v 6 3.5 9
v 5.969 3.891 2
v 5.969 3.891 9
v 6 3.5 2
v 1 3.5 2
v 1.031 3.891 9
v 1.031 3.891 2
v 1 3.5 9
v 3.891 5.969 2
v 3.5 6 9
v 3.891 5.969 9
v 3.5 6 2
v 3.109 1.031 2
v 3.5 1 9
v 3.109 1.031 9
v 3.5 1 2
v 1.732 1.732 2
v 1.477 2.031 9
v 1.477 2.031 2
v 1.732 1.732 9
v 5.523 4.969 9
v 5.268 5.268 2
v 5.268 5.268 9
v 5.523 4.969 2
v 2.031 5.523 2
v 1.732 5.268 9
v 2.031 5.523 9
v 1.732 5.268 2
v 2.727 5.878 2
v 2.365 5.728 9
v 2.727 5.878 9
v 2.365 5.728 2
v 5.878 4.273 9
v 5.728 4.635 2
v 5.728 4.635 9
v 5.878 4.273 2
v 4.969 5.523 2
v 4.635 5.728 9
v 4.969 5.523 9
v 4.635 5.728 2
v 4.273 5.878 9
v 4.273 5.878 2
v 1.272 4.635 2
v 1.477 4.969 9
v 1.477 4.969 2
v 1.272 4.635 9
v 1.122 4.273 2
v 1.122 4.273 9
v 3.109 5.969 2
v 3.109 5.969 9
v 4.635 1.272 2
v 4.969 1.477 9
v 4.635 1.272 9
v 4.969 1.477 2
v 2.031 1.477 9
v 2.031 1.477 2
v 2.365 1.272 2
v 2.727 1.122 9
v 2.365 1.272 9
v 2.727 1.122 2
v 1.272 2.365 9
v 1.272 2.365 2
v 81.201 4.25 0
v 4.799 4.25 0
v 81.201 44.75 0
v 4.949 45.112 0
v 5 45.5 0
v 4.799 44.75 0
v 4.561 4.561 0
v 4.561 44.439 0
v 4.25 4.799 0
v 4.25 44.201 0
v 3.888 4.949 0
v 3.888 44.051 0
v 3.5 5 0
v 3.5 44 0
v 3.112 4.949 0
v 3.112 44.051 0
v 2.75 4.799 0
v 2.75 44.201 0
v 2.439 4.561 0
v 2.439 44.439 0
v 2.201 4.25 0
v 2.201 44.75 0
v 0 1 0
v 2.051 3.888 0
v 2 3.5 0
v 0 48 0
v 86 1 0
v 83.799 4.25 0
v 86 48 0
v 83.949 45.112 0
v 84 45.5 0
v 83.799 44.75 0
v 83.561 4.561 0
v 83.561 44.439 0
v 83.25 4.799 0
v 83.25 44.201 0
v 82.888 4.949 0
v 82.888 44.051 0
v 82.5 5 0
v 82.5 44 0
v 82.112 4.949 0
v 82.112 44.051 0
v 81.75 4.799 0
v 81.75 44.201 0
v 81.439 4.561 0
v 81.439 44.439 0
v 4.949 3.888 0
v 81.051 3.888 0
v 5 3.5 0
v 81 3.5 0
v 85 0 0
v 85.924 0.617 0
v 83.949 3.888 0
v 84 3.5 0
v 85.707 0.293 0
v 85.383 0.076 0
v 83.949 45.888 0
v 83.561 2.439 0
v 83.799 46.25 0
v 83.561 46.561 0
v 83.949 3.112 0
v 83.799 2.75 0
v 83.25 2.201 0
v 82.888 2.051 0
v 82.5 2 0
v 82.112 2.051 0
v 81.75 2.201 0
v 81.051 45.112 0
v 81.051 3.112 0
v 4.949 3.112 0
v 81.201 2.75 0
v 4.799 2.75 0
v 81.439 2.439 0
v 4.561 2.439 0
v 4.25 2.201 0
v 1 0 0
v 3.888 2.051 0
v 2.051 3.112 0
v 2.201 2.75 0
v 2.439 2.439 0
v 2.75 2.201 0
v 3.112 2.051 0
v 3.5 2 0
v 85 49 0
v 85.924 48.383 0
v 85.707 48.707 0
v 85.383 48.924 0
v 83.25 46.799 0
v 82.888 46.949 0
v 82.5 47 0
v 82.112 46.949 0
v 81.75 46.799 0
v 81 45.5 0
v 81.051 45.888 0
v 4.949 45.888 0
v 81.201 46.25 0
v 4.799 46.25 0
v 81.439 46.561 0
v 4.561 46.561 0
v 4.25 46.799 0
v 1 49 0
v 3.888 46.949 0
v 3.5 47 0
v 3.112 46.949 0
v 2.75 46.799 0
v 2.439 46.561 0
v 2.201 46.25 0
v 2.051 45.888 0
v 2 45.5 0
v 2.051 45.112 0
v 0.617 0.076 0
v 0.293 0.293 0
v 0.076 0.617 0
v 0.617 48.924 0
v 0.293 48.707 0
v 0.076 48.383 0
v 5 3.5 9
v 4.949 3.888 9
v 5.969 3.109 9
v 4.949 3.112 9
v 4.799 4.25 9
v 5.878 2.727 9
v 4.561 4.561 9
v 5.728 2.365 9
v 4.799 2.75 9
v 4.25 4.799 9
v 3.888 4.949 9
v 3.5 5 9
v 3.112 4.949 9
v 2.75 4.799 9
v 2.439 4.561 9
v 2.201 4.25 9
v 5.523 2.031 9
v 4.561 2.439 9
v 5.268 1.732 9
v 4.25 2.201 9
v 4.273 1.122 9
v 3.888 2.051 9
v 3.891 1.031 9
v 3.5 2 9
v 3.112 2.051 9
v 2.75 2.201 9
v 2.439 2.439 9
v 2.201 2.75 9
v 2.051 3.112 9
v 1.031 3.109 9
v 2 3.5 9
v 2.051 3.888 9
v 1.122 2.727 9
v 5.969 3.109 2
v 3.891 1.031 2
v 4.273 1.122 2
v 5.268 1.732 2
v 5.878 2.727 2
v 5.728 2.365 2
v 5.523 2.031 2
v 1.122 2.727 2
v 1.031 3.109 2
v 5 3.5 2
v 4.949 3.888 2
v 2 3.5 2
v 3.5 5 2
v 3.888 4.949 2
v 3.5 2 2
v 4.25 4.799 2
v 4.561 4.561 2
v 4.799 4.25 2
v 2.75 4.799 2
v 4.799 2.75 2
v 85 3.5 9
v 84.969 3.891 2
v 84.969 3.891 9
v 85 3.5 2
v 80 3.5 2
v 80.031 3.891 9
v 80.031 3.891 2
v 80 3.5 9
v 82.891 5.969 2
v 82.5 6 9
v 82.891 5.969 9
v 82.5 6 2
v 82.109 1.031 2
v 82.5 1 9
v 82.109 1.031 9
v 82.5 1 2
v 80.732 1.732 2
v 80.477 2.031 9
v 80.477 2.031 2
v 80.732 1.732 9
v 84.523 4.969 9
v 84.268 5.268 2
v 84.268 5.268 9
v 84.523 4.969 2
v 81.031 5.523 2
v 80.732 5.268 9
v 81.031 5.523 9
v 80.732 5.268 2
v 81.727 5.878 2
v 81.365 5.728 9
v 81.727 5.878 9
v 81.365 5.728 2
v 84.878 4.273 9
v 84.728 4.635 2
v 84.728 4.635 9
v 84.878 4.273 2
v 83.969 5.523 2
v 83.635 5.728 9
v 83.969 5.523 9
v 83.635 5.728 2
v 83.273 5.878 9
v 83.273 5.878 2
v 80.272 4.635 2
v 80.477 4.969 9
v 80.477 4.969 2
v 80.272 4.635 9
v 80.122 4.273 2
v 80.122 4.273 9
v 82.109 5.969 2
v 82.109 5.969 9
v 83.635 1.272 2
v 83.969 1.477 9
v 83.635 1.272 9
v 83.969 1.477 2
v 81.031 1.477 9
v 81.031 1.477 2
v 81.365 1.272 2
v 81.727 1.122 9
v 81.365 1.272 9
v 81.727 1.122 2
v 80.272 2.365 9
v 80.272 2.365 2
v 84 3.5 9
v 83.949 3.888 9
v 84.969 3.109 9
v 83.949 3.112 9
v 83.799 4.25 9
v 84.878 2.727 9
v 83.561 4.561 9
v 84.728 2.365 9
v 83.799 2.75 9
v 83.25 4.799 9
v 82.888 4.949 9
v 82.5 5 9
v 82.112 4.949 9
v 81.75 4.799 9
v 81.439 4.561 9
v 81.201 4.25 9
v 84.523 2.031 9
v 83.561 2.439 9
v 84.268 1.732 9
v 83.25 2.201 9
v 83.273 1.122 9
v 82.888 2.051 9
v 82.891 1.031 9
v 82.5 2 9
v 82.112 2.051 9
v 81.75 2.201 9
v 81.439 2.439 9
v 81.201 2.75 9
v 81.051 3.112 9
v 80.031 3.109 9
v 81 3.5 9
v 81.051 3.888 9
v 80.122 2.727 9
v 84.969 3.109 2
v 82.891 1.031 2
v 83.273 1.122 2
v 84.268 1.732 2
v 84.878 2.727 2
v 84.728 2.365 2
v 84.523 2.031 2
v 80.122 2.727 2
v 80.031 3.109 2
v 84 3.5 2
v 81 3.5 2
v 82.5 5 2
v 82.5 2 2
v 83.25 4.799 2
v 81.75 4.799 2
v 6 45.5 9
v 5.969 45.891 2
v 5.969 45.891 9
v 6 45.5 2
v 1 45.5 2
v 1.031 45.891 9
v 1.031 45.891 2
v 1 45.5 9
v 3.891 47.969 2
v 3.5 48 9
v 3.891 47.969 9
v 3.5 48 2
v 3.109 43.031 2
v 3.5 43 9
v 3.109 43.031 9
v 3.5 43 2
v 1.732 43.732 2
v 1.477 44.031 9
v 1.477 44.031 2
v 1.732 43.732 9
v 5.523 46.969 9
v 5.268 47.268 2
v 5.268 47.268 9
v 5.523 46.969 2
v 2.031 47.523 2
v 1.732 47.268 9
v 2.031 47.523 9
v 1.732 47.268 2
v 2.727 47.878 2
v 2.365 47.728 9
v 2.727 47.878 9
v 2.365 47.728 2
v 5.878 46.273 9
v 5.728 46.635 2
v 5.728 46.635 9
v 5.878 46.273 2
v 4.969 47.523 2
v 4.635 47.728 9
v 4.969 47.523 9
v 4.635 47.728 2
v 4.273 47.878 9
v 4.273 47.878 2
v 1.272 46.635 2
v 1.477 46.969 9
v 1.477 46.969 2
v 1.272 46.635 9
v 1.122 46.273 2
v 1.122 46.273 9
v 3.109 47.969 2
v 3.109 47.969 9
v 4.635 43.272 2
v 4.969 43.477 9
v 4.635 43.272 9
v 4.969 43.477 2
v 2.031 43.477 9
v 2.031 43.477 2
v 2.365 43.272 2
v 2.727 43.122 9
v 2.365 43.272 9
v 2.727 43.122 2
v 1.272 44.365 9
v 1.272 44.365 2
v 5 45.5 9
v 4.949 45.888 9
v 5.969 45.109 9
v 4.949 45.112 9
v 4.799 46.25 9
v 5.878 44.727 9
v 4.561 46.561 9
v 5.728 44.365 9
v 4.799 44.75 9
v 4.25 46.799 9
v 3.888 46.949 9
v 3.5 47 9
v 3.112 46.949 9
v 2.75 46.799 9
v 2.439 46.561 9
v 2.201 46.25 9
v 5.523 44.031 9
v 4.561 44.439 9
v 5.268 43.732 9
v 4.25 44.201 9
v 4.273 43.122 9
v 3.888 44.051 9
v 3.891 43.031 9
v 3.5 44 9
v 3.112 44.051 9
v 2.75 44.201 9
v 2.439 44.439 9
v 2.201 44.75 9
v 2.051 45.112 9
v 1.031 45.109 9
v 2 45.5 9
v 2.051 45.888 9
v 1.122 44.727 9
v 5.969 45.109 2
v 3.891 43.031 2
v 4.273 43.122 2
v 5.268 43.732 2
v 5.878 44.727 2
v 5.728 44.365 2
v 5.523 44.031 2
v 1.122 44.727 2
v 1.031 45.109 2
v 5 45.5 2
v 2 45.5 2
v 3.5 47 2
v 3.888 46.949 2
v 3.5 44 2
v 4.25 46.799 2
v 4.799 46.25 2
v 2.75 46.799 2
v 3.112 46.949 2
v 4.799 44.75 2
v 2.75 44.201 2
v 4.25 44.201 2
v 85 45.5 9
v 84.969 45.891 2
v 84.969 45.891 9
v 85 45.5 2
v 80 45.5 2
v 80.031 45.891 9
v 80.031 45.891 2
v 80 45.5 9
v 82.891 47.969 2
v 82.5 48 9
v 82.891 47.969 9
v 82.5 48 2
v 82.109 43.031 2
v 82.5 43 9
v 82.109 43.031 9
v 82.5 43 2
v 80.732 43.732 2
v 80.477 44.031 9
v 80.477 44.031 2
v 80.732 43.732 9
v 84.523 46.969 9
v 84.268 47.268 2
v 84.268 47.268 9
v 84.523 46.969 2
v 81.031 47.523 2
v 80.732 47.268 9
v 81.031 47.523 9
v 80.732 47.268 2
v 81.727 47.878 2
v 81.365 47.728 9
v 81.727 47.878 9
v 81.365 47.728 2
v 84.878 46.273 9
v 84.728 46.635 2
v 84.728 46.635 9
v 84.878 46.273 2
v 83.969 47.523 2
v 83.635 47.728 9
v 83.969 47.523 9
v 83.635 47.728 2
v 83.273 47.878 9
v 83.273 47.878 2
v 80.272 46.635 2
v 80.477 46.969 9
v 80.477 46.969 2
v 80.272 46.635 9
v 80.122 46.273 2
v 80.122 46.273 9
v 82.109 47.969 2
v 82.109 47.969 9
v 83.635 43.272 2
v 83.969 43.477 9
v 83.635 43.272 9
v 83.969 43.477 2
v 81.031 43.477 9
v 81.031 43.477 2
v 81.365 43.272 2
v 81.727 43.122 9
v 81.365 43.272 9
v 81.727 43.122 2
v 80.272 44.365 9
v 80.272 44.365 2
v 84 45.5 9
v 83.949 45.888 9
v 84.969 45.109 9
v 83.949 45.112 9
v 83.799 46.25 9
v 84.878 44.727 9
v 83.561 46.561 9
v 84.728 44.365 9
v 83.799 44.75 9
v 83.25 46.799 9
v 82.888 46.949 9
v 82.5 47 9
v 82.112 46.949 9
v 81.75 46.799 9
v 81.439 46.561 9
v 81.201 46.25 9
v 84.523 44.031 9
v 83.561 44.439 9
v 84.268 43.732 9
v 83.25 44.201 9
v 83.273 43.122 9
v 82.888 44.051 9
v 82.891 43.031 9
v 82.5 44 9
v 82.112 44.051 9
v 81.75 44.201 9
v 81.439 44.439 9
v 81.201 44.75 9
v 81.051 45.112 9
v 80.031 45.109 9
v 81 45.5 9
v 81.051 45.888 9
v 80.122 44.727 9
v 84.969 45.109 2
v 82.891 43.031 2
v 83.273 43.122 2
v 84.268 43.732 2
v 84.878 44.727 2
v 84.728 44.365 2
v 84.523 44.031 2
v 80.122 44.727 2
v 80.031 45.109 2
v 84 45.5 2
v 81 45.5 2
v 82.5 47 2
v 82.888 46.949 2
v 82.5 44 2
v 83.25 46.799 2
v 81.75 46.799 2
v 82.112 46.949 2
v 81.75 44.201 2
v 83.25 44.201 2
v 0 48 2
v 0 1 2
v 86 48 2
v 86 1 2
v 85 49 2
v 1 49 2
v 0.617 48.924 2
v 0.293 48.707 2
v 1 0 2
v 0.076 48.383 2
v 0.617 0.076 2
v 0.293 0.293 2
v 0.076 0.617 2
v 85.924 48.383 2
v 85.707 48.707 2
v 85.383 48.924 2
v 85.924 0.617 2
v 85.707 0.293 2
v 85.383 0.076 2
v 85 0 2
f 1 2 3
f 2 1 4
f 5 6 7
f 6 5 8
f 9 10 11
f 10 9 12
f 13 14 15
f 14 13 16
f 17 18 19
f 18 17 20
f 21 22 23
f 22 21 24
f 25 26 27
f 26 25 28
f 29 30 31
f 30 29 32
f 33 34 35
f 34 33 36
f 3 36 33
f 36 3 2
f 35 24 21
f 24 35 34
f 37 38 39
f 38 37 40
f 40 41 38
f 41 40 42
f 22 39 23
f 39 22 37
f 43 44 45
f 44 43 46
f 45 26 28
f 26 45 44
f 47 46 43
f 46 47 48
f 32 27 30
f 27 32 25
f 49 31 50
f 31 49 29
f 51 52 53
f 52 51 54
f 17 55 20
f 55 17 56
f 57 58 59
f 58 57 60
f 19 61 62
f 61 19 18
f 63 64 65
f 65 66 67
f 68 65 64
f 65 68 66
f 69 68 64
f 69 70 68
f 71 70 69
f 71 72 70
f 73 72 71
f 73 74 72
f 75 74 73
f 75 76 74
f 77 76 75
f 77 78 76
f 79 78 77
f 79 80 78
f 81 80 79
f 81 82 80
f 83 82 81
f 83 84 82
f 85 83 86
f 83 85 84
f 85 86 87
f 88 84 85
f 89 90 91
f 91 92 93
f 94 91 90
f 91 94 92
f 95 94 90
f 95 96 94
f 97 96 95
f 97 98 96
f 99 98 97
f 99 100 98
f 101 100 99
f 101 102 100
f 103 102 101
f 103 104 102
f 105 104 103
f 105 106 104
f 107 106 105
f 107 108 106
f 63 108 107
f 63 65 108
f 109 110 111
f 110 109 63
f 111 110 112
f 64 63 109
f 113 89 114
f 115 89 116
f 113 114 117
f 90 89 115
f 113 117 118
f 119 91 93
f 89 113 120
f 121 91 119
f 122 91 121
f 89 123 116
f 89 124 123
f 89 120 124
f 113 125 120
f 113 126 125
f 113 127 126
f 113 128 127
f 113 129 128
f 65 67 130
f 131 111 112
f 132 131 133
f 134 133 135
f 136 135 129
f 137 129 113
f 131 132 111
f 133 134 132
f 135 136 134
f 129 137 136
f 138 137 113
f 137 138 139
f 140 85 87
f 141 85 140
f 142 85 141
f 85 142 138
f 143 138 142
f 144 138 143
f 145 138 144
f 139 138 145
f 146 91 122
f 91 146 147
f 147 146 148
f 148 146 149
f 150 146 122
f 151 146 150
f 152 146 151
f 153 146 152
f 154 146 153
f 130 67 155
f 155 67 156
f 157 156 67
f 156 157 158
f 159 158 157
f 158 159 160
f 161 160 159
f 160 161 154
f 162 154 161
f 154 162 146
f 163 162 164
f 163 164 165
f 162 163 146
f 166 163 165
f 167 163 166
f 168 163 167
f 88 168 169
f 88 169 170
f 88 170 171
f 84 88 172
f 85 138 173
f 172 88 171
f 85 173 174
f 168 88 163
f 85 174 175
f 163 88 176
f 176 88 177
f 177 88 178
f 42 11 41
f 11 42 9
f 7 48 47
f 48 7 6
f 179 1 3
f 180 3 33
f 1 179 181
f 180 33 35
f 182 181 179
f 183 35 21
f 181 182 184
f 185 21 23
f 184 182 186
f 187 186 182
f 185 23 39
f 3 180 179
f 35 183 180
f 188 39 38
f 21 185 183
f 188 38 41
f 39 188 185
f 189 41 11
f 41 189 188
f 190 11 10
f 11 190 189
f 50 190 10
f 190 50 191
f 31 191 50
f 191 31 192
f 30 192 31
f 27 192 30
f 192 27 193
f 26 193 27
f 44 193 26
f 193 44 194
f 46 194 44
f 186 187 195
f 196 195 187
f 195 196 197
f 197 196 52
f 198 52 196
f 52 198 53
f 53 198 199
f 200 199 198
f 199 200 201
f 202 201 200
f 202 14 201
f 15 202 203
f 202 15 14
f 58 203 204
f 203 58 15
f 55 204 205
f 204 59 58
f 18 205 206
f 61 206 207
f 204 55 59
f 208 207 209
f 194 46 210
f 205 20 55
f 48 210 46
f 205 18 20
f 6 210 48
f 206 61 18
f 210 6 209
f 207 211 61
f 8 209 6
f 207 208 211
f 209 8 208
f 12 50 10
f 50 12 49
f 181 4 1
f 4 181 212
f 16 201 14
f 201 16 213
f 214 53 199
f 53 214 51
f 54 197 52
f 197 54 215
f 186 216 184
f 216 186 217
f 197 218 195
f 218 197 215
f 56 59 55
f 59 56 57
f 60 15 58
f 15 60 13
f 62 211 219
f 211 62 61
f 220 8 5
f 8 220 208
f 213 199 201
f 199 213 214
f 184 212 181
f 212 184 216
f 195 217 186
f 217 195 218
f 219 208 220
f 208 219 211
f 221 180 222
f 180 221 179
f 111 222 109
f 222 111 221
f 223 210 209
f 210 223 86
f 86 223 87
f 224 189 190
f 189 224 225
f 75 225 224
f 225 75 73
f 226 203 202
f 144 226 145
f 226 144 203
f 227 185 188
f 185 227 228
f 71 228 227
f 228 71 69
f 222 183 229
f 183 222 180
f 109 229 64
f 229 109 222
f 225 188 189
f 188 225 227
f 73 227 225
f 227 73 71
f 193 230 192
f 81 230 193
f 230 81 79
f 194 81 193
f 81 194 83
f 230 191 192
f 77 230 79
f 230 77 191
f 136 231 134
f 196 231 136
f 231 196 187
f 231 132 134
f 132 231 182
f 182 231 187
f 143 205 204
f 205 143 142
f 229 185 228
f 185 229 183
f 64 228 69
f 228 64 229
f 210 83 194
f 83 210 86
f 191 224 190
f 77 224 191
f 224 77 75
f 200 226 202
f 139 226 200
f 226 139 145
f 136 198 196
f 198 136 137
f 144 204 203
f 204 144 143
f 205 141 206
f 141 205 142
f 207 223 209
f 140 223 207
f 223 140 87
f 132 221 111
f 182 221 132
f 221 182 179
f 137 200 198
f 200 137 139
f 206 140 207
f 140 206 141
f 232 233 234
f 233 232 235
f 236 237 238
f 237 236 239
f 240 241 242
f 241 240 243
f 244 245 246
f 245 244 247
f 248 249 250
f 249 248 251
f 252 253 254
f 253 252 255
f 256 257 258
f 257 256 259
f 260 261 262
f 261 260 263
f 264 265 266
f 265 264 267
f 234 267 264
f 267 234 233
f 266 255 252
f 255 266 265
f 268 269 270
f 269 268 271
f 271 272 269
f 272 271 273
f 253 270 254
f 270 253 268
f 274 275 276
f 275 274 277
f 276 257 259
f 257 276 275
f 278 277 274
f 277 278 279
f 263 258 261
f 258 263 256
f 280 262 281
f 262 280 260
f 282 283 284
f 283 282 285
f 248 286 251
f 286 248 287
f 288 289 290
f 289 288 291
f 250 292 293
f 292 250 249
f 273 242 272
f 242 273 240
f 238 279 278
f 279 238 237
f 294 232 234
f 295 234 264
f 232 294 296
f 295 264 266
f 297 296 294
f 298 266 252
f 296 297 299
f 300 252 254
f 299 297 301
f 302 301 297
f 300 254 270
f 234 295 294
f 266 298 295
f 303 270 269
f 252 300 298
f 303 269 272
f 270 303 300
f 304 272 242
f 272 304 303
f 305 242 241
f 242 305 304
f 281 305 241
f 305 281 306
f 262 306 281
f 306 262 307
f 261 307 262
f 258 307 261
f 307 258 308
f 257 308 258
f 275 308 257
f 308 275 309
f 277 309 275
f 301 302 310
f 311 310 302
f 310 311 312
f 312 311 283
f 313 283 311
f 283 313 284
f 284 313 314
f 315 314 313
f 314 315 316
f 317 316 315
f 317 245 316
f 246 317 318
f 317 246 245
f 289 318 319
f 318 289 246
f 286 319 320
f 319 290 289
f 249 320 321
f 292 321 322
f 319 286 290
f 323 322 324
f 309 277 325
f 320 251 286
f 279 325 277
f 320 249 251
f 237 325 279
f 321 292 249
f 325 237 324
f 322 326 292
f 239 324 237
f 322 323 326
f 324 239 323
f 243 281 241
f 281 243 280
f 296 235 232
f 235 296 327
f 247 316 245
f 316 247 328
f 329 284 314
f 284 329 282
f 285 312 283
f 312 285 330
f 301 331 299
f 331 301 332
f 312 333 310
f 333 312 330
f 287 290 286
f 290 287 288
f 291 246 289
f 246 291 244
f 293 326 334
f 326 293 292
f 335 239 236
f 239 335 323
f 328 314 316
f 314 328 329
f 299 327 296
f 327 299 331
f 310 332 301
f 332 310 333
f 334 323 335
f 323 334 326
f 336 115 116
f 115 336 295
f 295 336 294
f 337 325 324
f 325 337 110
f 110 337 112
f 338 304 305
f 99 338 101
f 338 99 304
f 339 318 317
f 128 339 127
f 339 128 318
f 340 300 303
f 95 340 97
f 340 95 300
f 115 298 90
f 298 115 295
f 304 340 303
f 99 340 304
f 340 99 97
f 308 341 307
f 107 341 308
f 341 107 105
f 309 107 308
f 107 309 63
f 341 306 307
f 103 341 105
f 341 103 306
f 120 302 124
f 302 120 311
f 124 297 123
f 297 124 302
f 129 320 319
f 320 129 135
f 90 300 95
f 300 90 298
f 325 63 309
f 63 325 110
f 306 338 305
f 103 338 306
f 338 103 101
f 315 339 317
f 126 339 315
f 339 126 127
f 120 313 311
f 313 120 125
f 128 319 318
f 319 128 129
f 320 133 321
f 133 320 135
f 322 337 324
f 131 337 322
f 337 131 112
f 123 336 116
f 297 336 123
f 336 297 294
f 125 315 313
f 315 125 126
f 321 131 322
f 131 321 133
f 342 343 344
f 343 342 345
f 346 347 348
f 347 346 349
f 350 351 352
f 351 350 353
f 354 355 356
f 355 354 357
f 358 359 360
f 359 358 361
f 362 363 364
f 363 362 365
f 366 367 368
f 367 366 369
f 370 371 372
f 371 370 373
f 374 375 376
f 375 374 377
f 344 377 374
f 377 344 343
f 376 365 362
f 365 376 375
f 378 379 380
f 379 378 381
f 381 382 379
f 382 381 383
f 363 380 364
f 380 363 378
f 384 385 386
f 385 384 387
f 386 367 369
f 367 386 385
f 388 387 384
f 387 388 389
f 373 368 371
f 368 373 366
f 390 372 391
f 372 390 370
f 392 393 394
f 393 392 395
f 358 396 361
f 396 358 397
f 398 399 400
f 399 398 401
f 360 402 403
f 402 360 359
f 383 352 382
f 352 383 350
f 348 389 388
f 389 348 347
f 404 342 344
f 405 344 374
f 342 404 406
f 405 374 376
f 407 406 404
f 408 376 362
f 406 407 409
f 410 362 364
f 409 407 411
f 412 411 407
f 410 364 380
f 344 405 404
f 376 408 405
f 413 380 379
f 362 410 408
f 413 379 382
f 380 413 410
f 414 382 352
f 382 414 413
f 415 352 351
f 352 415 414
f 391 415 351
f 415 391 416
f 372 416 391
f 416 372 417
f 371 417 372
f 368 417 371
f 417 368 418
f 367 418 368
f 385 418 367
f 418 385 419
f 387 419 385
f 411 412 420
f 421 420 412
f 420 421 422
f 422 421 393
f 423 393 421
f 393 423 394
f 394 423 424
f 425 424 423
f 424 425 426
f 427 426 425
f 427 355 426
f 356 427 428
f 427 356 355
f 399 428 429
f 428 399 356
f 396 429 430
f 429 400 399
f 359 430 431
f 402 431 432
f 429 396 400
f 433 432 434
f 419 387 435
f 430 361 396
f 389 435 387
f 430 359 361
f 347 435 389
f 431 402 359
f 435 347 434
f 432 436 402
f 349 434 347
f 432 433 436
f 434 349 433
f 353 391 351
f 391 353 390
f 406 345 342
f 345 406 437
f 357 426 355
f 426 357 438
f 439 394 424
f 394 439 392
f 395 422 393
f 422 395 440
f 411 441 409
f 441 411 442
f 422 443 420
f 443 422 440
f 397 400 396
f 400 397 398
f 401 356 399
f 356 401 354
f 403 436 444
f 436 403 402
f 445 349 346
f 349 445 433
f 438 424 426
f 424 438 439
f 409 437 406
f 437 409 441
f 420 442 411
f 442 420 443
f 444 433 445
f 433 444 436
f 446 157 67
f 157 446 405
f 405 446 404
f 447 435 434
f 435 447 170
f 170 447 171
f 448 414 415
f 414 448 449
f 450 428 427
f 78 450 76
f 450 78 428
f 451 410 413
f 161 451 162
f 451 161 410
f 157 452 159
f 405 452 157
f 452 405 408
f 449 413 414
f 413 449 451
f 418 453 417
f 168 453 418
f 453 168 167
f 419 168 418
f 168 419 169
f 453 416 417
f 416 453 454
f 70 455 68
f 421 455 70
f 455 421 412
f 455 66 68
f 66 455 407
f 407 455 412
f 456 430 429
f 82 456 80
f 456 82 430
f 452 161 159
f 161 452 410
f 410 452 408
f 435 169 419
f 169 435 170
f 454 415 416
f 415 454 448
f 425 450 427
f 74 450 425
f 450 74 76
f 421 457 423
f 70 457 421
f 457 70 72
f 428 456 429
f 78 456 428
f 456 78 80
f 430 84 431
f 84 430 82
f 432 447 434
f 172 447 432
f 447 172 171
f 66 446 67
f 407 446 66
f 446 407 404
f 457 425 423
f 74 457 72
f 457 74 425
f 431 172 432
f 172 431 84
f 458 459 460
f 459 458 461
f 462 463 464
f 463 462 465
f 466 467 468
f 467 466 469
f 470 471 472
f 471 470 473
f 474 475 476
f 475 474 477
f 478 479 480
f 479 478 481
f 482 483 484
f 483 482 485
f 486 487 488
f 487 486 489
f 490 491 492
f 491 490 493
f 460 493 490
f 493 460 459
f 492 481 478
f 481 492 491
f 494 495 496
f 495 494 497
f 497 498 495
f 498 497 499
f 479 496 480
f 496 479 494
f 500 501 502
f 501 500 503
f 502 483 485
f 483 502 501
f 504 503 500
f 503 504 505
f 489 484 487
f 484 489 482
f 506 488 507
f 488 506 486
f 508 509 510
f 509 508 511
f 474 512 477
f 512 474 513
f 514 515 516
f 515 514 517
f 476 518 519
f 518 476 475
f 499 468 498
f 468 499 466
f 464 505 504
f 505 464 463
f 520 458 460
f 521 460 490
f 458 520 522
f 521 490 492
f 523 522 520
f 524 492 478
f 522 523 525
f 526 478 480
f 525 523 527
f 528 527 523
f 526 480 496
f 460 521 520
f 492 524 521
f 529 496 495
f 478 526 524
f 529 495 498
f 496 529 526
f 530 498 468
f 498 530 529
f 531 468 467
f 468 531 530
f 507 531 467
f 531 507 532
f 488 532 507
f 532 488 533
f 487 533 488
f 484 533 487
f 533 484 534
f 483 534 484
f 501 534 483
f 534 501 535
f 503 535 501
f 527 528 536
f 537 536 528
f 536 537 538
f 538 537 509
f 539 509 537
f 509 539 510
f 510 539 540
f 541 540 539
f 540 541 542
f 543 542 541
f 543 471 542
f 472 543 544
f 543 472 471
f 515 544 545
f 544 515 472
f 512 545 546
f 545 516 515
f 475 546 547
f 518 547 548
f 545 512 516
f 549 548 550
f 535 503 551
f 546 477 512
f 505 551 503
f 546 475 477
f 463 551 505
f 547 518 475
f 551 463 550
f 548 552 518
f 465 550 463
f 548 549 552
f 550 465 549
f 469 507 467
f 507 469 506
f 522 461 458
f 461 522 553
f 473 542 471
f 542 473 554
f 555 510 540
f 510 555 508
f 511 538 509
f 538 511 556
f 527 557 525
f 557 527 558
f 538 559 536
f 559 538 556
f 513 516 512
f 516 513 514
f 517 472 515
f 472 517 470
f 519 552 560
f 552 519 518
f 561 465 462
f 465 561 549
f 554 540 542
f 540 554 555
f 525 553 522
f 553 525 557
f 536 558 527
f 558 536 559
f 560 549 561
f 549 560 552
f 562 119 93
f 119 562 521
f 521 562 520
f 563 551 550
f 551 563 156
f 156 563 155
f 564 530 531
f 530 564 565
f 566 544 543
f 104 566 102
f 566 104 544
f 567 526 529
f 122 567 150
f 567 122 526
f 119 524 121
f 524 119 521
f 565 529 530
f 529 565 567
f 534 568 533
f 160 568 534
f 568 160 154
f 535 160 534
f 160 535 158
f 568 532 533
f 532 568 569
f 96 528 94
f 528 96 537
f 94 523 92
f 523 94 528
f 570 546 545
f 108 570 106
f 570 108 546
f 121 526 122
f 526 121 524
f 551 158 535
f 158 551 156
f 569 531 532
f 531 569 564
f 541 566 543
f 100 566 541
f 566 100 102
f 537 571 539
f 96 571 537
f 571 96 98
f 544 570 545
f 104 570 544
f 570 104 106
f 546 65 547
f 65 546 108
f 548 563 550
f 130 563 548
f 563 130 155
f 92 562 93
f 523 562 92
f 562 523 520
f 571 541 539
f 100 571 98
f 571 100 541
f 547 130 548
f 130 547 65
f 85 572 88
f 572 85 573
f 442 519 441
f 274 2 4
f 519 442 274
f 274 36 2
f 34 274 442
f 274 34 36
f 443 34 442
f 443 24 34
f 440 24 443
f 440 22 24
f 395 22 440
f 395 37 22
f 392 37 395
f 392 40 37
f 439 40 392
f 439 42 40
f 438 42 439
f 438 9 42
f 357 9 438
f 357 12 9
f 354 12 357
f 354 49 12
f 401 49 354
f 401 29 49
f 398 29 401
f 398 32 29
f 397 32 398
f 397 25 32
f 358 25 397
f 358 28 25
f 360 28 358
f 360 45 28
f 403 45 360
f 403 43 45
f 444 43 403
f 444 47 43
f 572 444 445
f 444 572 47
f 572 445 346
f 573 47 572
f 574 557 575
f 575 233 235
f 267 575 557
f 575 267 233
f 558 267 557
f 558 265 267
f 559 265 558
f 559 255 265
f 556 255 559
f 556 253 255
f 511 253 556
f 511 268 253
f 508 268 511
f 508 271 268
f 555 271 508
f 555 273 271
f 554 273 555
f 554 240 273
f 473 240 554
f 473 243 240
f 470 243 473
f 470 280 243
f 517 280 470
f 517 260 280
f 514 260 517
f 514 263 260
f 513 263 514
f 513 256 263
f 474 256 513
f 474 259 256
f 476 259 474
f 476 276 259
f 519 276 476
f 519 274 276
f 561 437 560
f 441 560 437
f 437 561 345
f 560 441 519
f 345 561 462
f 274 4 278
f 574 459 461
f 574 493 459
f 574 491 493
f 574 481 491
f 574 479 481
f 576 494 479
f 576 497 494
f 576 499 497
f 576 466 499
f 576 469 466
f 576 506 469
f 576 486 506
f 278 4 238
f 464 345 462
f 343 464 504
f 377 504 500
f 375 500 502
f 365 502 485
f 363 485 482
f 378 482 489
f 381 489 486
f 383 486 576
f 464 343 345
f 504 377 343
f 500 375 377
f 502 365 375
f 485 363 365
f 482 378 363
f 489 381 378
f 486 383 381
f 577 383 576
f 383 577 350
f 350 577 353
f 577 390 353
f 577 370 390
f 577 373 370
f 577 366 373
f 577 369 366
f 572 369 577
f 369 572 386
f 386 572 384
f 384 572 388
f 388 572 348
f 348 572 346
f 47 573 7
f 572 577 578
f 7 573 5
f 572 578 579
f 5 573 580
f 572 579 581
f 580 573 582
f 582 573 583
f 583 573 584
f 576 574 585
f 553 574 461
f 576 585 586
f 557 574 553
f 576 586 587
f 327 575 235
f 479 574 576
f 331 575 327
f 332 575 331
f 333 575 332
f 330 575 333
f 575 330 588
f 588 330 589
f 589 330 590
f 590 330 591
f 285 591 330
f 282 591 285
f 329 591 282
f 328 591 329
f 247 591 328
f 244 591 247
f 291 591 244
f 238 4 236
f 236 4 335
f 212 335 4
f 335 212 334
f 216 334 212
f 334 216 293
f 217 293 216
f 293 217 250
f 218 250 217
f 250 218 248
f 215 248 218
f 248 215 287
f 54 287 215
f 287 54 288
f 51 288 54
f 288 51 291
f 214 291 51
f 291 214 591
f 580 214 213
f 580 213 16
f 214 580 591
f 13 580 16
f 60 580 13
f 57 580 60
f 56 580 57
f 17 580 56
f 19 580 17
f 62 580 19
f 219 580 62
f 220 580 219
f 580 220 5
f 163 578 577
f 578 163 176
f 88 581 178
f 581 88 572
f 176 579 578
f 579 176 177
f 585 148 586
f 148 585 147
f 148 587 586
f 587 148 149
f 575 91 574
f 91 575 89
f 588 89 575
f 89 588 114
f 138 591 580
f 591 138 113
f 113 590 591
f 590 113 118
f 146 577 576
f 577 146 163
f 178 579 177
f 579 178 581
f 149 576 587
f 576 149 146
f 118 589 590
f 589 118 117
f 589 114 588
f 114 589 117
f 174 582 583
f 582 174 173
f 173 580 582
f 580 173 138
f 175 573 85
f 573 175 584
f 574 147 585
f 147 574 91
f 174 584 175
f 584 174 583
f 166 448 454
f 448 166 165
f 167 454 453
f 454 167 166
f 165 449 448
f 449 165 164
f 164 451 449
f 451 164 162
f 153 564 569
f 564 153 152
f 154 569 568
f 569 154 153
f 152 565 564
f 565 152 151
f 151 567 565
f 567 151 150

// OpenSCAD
// Render Control
$fa = 1;
$fs = 0.4;

// Dimensions: Badger
widthBadger = 86;
heightBadger = 49;

// Dimensions: Fixings
radiusHole = 3 / 2;
lengthThread = 7;
offsetHole = 2;
radiusStrut = 5 / 2;

// Dimensions: General
depthPlate = 2;
radiusPlate = 1;

// Model: Badge Plate
render() {
    difference() {
        // Plate Body
        hull() {
            translate([radiusPlate, radiusPlate, 0])
                cylinder(r=radiusPlate, h=depthPlate);

            translate([widthBadger - radiusPlate, radiusPlate, 0])
                cylinder(r=radiusPlate, h=depthPlate);

            translate([radiusPlate, heightBadger - radiusPlate, 0])
                cylinder(r=radiusPlate, h=depthPlate);

            translate([widthBadger - radiusPlate, heightBadger - radiusPlate, 0])
                cylinder(r=radiusPlate, h=depthPlate);
        }
        
        // Subtract Holes for the screw threads
        translate([offsetHole + radiusHole, offsetHole + radiusHole, 0])
            cylinder(r=radiusHole, h=depthPlate);

        translate([widthBadger - (offsetHole + radiusHole), offsetHole + radiusHole, 0])
            cylinder(r=radiusHole, h=depthPlate);

        translate([offsetHole + radiusHole, heightBadger - (offsetHole + radiusHole), 0])
            cylinder(r=radiusHole, h=depthPlate);

        translate([widthBadger - (offsetHole + radiusHole), heightBadger - (offsetHole + radiusHole), 0])
            cylinder(r=radiusHole, h=depthPlate);

    }

    // Screw Struts
    translate([offsetHole + radiusHole, offsetHole + radiusHole, 0])
        difference() {
            // Support Body
            cylinder(r=radiusStrut, h=lengthThread + depthPlate);

            // Thread hole
            cylinder(r=radiusHole, h=lengthThread + depthPlate);
        }

    translate([widthBadger - (offsetHole + radiusHole), offsetHole + radiusHole, 0])
        difference() {
            // Support Body
            cylinder(r=radiusStrut, h=lengthThread + depthPlate);

            // Thread hole
            cylinder(r=radiusHole, h=lengthThread + depthPlate);
        }

    translate([offsetHole + radiusHole, heightBadger - (offsetHole + radiusHole), 0])
        difference() {
            // Support Body
            cylinder(r=radiusStrut, h=lengthThread + depthPlate);

            // Thread hole
            cylinder(r=radiusHole, h=lengthThread + depthPlate);
        }

    translate([widthBadger - (offsetHole + radiusHole), heightBadger - (offsetHole + radiusHole), 0])
        difference() {
            // Support Body
            cylinder(r=radiusStrut, h=lengthThread + depthPlate);

            // Thread hole
            cylinder(r=radiusHole, h=lengthThread + depthPlate);
        }
}
